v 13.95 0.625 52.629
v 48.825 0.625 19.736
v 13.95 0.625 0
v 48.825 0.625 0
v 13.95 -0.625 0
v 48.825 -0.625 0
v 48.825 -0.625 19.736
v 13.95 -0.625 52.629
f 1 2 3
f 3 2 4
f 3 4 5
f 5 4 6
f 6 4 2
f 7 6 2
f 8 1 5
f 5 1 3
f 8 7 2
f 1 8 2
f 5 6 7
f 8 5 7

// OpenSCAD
polyhedron(points = [[13.9494931420, 0.6250000000, 0], [13.9494931420, -0.6250000000, 0], [48.8249759970, 0.6250000000, 0], [48.8249759970, -0.6250000000, 0], [48.8249759970, 0.6250000000, 19.7357893427], [48.8249759970, -0.6250000000, 19.7357893427], [13.9494931420, 0.6250000000, 52.6287715805], [13.9494931420, -0.6250000000, 52.6287715805]], triangles = [[0, 1, 2], [1, 3, 2], [2, 3, 4], [3, 5, 4], [4, 5, 6], [5, 7, 6], [6, 7, 0], [7, 1, 0], [0, 2, 6], [2, 4, 6], [1, 7, 3], [3, 7, 5]]);
